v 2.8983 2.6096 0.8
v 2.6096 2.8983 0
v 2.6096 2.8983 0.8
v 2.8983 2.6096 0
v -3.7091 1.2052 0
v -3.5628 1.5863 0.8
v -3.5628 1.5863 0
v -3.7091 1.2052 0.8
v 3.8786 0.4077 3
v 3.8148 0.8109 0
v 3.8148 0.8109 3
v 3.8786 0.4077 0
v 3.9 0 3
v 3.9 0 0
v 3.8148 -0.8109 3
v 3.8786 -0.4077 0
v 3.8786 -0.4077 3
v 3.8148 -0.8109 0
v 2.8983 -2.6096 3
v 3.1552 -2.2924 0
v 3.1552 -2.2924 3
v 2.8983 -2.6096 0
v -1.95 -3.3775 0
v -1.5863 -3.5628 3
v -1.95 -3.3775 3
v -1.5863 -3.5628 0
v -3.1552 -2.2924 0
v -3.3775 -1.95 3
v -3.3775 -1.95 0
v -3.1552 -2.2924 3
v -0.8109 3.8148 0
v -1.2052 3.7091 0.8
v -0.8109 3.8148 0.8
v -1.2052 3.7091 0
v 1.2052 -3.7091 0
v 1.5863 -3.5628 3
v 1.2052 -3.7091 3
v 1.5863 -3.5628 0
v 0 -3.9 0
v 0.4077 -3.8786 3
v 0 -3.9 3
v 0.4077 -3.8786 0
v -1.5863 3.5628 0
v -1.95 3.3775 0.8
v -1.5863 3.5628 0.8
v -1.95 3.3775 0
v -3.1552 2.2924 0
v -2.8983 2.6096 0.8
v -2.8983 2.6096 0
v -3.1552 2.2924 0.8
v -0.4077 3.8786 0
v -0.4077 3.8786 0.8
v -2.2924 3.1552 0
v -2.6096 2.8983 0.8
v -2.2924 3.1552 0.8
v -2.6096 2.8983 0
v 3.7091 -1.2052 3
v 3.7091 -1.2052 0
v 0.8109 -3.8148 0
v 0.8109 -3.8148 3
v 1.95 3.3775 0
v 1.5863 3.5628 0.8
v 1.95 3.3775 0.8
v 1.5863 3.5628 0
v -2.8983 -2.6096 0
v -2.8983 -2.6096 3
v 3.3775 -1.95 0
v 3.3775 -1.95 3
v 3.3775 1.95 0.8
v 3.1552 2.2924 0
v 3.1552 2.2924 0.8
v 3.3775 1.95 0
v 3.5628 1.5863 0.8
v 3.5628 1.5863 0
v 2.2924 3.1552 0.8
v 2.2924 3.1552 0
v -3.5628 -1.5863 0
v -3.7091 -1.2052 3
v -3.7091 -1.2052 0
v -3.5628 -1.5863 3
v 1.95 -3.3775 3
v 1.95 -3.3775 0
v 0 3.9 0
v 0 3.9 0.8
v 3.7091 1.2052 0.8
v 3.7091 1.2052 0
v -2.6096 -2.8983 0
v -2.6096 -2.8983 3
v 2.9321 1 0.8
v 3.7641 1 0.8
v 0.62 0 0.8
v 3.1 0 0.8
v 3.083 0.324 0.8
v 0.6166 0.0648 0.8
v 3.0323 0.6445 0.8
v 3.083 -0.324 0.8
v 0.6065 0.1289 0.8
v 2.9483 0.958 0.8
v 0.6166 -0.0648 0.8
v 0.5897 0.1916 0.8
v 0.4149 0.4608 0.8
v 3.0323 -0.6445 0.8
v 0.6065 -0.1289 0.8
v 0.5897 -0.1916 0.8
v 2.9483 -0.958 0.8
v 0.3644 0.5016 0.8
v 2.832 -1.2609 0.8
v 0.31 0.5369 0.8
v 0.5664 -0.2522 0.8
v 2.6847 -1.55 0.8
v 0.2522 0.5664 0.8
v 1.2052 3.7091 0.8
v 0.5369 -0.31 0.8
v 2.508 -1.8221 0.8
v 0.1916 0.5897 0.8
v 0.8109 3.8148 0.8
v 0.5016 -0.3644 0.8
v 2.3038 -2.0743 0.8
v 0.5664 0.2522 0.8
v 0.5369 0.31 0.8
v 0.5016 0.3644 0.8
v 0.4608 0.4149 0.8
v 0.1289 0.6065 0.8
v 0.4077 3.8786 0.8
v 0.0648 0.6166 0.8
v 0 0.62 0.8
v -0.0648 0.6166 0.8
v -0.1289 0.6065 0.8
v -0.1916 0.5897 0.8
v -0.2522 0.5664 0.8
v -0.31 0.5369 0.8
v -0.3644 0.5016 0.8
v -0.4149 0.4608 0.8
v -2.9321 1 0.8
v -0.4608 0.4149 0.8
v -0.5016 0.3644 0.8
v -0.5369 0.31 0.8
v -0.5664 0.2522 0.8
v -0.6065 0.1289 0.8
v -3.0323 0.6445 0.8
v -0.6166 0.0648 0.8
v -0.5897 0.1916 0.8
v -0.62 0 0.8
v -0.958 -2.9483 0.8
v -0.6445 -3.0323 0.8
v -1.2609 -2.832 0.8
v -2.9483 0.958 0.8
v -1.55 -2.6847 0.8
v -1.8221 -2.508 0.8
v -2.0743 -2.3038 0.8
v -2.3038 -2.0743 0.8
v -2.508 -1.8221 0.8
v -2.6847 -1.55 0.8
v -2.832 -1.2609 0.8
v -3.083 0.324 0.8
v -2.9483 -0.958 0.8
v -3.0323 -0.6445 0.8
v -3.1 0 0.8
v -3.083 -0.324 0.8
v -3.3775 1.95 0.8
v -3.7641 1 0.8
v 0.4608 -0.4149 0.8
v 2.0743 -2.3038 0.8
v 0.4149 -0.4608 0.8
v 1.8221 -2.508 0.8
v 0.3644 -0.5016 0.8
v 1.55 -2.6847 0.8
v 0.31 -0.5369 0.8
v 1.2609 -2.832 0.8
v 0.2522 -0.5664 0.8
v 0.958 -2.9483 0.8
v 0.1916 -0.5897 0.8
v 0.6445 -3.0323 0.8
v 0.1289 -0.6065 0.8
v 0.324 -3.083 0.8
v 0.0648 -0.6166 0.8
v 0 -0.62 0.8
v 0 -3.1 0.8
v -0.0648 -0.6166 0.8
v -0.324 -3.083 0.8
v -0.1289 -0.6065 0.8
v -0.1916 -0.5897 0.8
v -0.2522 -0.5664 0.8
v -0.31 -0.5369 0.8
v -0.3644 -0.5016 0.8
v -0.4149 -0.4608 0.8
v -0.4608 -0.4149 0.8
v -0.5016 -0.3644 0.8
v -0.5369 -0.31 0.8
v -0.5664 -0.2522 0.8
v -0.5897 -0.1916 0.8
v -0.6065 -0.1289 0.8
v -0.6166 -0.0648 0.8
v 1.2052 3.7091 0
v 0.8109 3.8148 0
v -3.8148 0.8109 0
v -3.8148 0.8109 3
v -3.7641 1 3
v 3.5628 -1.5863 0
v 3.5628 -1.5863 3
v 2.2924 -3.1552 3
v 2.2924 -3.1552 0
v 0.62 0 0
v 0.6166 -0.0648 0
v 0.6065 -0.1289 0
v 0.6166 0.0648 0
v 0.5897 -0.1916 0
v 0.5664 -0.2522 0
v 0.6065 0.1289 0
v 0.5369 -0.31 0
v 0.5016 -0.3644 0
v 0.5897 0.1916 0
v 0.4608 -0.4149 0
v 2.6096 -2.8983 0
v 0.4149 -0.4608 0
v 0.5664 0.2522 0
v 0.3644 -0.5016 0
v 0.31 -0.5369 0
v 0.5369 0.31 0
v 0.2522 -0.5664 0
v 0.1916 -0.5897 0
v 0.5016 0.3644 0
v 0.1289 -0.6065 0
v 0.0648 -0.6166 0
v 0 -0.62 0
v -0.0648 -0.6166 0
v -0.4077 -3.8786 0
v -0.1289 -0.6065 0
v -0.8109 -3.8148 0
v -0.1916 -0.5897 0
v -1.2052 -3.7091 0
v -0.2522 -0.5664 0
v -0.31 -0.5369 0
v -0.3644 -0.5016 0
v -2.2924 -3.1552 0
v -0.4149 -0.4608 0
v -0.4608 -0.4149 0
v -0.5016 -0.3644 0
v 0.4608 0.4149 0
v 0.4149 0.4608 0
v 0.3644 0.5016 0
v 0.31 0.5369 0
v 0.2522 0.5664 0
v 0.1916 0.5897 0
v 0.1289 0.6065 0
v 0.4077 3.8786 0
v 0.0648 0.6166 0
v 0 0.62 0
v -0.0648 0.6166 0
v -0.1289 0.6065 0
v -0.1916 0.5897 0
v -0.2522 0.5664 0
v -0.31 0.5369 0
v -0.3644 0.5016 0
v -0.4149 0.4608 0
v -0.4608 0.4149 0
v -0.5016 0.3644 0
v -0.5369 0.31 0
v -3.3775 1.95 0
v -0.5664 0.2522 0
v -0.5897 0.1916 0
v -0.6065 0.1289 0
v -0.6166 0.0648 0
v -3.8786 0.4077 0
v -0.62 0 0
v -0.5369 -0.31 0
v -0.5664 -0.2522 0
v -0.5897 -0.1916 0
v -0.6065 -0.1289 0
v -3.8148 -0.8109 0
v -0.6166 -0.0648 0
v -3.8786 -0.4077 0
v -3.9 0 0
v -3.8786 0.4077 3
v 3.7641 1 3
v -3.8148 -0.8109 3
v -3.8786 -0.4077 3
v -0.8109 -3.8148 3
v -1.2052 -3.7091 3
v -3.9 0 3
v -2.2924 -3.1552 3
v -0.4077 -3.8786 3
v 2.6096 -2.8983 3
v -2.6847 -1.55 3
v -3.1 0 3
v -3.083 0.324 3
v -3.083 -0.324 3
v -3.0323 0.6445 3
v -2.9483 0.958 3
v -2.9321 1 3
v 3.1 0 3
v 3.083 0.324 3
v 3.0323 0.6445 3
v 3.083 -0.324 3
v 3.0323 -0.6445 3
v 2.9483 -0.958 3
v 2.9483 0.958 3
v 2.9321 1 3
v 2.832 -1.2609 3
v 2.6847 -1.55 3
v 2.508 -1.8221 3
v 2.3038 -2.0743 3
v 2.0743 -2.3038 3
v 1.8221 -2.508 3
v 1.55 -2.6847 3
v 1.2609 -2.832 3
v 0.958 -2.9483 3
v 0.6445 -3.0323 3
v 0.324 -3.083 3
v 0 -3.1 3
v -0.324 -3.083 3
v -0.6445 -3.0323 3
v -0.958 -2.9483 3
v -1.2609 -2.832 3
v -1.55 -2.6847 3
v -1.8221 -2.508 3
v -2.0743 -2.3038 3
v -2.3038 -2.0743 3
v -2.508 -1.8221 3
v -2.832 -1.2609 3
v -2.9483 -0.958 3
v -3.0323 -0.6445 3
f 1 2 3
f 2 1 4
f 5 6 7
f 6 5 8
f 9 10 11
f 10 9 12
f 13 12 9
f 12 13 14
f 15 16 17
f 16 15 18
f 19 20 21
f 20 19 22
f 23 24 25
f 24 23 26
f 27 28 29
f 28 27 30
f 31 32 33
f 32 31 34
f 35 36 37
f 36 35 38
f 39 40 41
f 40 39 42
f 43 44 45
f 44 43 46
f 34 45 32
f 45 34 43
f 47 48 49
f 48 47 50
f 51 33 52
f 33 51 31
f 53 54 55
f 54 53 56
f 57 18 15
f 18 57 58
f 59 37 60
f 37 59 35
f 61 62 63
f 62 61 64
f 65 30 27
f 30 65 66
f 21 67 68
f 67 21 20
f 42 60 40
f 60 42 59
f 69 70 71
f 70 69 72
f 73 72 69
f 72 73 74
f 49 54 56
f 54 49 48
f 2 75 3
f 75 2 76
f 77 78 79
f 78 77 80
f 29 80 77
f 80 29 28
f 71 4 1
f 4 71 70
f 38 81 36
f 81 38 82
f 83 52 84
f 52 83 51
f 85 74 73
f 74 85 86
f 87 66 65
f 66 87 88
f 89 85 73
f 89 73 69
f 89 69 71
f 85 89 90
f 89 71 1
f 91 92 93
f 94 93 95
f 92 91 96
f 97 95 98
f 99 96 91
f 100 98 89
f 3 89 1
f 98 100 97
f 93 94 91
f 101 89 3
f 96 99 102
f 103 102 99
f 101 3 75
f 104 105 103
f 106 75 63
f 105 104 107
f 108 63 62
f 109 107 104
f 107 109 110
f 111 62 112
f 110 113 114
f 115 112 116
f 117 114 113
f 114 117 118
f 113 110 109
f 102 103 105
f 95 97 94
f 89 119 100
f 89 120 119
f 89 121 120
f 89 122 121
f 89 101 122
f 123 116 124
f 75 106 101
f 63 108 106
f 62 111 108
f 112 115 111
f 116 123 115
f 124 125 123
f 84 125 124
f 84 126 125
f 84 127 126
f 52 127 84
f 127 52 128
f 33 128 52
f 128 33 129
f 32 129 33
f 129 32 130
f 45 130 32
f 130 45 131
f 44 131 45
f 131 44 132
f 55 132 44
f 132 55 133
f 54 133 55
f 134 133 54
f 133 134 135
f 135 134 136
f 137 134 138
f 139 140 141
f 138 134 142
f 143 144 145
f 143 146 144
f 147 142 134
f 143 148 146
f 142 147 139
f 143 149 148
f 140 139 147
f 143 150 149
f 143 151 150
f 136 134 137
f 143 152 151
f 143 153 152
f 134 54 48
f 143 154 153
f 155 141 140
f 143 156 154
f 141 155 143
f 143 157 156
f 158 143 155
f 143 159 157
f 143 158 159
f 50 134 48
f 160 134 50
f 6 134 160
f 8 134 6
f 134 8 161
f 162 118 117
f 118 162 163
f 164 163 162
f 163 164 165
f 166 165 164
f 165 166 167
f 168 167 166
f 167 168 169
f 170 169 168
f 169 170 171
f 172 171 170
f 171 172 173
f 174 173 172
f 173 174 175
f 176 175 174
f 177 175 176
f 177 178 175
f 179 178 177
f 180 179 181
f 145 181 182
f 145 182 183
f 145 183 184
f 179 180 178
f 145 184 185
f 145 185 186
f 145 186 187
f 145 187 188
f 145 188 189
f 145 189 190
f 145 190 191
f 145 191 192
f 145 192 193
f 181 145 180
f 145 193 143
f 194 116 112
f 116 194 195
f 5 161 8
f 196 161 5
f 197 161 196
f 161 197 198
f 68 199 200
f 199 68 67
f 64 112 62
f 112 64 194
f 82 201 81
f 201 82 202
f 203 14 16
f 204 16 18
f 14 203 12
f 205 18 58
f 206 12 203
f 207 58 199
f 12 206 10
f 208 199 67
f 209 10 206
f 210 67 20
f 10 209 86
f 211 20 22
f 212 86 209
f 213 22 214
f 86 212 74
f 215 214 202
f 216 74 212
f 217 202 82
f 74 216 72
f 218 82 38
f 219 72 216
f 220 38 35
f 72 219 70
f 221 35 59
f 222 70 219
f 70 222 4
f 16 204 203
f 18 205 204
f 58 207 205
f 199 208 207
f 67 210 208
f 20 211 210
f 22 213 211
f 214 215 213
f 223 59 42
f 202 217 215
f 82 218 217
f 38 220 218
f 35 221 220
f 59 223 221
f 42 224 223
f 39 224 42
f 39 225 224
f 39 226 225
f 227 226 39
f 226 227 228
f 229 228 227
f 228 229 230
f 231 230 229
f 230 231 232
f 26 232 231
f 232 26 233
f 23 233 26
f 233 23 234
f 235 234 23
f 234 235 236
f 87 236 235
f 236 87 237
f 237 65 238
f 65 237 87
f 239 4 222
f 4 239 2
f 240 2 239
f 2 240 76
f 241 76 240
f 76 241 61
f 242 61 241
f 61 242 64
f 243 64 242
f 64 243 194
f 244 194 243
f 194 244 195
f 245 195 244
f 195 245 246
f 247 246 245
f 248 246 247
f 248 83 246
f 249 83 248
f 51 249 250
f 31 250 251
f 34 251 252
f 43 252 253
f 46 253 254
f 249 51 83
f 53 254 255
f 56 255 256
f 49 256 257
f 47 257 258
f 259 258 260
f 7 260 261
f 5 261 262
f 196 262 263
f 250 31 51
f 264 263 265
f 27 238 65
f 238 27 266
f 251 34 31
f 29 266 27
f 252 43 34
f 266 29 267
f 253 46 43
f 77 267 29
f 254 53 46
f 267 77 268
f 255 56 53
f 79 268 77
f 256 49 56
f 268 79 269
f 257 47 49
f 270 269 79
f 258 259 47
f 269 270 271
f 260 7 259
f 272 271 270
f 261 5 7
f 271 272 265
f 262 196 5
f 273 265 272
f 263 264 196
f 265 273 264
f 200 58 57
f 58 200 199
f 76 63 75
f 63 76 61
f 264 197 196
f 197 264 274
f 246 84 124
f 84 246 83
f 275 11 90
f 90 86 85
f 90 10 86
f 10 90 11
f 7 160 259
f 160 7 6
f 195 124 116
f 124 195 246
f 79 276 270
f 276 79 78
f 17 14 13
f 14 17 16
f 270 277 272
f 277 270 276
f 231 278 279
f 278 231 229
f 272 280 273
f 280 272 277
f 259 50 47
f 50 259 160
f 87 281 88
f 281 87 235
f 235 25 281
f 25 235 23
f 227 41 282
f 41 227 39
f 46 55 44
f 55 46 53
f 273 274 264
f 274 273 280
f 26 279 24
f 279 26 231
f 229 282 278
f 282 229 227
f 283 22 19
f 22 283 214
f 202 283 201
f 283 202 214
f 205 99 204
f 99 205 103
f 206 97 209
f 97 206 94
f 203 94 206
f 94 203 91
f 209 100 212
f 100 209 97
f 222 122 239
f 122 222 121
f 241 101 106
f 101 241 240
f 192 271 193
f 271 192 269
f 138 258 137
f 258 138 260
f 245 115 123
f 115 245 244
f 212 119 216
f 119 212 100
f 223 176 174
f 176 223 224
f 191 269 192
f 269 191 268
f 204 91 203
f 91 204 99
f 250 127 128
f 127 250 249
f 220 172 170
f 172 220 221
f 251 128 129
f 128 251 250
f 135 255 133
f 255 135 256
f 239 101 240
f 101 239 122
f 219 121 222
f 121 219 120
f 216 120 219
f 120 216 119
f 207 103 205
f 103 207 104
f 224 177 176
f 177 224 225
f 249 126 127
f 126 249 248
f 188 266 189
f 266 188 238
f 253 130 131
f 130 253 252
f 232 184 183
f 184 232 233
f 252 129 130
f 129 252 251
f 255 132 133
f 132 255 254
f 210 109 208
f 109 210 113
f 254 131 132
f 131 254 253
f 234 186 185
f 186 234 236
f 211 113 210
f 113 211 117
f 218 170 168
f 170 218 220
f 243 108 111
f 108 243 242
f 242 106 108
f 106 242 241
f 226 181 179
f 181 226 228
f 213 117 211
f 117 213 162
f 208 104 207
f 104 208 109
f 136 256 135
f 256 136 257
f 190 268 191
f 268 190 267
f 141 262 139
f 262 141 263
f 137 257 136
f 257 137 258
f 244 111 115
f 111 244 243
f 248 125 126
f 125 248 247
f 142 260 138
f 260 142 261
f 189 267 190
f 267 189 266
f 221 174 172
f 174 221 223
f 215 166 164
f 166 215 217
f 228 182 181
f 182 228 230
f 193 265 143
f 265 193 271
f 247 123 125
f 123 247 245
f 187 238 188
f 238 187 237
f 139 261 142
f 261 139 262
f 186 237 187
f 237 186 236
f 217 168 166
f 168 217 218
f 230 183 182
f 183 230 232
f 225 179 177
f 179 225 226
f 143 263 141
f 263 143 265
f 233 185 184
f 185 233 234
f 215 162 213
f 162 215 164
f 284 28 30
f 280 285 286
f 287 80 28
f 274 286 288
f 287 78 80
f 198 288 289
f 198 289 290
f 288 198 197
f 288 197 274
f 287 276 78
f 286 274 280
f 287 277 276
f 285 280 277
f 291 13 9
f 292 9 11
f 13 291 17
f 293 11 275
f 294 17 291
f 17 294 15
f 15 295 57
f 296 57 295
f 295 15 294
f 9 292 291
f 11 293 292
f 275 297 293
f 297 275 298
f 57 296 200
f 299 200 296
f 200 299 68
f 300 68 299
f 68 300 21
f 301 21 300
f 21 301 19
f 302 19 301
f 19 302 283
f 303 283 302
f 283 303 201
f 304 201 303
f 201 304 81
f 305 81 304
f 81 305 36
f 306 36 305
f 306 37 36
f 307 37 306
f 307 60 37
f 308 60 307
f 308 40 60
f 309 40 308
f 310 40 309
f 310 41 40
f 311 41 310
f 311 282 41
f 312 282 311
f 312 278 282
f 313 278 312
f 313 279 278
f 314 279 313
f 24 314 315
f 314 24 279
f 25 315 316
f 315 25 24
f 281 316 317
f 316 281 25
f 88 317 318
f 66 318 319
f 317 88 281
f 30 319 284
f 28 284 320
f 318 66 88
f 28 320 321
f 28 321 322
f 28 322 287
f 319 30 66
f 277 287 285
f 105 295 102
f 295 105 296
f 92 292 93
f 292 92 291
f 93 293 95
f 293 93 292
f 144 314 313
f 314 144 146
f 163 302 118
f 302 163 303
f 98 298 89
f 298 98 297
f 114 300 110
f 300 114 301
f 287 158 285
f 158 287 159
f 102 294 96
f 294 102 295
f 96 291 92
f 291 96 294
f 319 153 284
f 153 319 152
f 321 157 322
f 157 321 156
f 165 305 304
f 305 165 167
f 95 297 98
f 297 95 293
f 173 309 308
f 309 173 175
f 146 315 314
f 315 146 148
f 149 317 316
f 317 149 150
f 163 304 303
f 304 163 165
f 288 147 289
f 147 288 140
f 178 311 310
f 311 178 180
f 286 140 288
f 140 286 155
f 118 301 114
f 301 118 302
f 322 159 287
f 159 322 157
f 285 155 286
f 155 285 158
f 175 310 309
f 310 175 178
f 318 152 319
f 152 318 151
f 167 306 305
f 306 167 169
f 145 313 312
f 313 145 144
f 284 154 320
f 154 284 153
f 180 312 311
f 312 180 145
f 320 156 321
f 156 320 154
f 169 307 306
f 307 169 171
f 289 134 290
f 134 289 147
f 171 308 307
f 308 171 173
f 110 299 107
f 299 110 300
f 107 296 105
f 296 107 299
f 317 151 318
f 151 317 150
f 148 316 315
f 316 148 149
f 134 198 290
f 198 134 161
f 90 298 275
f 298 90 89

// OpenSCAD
$fn=60;

difference(){
    cylinder(r=3.9, h=0.8); // top above the base
    cylinder(r=0.62, h=30, center=true); // was .42 center hole 	
}

#difference(){
    cylinder(r=3.9, h=3); 
    cylinder(r=3.1, h=3); 
    translate([-4,1,.5])cube([8,8,4]);
}
